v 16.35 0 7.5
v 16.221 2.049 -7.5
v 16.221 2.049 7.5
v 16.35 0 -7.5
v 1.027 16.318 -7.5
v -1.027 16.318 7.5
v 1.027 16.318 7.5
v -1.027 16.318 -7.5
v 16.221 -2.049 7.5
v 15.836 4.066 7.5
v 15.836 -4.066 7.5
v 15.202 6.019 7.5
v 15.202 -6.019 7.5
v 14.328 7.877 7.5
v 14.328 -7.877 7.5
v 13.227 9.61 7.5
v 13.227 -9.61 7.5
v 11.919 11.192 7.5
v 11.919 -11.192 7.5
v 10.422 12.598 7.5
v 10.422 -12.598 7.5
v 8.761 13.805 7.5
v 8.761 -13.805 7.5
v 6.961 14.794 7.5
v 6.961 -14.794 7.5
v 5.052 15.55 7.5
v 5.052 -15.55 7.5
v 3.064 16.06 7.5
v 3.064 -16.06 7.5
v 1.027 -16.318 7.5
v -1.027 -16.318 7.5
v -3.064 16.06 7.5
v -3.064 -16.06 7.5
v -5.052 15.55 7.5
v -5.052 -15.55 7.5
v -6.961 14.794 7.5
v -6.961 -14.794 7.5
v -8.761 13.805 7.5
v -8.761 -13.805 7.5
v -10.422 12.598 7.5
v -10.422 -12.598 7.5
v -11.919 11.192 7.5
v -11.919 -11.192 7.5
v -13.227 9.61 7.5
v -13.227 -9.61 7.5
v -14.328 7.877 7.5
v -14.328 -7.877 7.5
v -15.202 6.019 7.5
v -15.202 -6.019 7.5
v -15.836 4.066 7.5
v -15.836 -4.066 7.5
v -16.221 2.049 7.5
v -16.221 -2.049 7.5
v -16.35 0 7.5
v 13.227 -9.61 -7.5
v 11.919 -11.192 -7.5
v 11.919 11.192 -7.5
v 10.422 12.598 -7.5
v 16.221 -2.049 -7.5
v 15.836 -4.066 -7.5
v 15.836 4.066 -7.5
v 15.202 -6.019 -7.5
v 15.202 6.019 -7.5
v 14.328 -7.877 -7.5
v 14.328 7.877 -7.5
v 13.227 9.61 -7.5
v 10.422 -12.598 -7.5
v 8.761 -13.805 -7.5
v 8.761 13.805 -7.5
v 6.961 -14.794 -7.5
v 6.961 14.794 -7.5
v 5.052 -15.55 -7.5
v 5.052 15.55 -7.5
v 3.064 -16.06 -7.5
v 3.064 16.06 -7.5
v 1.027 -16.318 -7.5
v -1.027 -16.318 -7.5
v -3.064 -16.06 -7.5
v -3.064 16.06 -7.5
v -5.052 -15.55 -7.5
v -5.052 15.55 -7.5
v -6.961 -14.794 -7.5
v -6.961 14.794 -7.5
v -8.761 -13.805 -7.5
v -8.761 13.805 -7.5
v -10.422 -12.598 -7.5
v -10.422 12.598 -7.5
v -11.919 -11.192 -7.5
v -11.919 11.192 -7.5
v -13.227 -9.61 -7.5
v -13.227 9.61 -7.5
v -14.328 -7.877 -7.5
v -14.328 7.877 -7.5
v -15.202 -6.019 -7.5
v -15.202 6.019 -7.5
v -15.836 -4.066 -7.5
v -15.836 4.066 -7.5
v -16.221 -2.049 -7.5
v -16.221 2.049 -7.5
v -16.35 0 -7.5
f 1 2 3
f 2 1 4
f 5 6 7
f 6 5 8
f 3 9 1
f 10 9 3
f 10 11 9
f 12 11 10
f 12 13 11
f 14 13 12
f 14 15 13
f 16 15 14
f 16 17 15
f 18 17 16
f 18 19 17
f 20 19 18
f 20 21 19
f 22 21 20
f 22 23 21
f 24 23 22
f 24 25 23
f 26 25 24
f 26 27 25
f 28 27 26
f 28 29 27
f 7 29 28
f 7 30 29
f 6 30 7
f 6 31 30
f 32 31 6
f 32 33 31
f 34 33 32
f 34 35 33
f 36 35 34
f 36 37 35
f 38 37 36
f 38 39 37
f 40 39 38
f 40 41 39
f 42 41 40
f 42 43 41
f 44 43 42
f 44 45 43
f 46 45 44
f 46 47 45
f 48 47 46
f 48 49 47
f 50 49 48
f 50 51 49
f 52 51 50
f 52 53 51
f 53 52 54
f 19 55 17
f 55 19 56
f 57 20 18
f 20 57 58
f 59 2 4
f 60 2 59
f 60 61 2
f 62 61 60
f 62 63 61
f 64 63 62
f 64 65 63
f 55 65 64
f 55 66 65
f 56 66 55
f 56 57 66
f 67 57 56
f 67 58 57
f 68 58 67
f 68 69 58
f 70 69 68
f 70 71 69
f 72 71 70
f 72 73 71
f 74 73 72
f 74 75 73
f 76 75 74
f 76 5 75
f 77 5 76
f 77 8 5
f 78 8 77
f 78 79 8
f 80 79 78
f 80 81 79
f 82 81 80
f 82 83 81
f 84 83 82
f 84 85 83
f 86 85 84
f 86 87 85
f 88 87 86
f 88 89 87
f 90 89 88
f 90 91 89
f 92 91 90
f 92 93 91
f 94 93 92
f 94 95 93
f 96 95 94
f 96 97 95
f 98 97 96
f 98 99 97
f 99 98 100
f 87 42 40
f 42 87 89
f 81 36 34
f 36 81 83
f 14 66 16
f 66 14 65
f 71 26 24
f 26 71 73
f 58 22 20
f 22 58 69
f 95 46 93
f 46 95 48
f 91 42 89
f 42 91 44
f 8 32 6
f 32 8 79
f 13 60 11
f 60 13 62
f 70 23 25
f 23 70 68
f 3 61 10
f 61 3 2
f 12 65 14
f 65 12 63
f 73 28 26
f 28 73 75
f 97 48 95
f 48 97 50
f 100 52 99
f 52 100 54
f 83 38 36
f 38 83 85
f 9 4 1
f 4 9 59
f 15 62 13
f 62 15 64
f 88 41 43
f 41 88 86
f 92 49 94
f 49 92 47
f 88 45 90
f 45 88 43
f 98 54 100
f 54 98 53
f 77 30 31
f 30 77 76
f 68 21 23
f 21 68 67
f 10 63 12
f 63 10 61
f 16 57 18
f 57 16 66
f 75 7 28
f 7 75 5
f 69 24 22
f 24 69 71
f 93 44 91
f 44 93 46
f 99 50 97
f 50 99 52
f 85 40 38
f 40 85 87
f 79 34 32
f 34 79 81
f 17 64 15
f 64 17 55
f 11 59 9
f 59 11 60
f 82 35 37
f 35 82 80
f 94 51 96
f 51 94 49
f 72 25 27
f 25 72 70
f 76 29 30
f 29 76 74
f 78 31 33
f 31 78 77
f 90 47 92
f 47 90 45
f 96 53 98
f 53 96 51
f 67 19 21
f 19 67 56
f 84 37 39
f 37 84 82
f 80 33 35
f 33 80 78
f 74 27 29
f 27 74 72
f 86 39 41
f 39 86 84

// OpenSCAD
$fn = 50;


difference() {
	union() {
		translate(v = [0, 0, -7.5000000000]) {
			cylinder(h = 15, r = 16.3500000000);
		}
	}
	union() {
		translate(v = [0, 0, -100.0000000000]) {
			cylinder(h = 200, r = 0);
		}
	}
}
